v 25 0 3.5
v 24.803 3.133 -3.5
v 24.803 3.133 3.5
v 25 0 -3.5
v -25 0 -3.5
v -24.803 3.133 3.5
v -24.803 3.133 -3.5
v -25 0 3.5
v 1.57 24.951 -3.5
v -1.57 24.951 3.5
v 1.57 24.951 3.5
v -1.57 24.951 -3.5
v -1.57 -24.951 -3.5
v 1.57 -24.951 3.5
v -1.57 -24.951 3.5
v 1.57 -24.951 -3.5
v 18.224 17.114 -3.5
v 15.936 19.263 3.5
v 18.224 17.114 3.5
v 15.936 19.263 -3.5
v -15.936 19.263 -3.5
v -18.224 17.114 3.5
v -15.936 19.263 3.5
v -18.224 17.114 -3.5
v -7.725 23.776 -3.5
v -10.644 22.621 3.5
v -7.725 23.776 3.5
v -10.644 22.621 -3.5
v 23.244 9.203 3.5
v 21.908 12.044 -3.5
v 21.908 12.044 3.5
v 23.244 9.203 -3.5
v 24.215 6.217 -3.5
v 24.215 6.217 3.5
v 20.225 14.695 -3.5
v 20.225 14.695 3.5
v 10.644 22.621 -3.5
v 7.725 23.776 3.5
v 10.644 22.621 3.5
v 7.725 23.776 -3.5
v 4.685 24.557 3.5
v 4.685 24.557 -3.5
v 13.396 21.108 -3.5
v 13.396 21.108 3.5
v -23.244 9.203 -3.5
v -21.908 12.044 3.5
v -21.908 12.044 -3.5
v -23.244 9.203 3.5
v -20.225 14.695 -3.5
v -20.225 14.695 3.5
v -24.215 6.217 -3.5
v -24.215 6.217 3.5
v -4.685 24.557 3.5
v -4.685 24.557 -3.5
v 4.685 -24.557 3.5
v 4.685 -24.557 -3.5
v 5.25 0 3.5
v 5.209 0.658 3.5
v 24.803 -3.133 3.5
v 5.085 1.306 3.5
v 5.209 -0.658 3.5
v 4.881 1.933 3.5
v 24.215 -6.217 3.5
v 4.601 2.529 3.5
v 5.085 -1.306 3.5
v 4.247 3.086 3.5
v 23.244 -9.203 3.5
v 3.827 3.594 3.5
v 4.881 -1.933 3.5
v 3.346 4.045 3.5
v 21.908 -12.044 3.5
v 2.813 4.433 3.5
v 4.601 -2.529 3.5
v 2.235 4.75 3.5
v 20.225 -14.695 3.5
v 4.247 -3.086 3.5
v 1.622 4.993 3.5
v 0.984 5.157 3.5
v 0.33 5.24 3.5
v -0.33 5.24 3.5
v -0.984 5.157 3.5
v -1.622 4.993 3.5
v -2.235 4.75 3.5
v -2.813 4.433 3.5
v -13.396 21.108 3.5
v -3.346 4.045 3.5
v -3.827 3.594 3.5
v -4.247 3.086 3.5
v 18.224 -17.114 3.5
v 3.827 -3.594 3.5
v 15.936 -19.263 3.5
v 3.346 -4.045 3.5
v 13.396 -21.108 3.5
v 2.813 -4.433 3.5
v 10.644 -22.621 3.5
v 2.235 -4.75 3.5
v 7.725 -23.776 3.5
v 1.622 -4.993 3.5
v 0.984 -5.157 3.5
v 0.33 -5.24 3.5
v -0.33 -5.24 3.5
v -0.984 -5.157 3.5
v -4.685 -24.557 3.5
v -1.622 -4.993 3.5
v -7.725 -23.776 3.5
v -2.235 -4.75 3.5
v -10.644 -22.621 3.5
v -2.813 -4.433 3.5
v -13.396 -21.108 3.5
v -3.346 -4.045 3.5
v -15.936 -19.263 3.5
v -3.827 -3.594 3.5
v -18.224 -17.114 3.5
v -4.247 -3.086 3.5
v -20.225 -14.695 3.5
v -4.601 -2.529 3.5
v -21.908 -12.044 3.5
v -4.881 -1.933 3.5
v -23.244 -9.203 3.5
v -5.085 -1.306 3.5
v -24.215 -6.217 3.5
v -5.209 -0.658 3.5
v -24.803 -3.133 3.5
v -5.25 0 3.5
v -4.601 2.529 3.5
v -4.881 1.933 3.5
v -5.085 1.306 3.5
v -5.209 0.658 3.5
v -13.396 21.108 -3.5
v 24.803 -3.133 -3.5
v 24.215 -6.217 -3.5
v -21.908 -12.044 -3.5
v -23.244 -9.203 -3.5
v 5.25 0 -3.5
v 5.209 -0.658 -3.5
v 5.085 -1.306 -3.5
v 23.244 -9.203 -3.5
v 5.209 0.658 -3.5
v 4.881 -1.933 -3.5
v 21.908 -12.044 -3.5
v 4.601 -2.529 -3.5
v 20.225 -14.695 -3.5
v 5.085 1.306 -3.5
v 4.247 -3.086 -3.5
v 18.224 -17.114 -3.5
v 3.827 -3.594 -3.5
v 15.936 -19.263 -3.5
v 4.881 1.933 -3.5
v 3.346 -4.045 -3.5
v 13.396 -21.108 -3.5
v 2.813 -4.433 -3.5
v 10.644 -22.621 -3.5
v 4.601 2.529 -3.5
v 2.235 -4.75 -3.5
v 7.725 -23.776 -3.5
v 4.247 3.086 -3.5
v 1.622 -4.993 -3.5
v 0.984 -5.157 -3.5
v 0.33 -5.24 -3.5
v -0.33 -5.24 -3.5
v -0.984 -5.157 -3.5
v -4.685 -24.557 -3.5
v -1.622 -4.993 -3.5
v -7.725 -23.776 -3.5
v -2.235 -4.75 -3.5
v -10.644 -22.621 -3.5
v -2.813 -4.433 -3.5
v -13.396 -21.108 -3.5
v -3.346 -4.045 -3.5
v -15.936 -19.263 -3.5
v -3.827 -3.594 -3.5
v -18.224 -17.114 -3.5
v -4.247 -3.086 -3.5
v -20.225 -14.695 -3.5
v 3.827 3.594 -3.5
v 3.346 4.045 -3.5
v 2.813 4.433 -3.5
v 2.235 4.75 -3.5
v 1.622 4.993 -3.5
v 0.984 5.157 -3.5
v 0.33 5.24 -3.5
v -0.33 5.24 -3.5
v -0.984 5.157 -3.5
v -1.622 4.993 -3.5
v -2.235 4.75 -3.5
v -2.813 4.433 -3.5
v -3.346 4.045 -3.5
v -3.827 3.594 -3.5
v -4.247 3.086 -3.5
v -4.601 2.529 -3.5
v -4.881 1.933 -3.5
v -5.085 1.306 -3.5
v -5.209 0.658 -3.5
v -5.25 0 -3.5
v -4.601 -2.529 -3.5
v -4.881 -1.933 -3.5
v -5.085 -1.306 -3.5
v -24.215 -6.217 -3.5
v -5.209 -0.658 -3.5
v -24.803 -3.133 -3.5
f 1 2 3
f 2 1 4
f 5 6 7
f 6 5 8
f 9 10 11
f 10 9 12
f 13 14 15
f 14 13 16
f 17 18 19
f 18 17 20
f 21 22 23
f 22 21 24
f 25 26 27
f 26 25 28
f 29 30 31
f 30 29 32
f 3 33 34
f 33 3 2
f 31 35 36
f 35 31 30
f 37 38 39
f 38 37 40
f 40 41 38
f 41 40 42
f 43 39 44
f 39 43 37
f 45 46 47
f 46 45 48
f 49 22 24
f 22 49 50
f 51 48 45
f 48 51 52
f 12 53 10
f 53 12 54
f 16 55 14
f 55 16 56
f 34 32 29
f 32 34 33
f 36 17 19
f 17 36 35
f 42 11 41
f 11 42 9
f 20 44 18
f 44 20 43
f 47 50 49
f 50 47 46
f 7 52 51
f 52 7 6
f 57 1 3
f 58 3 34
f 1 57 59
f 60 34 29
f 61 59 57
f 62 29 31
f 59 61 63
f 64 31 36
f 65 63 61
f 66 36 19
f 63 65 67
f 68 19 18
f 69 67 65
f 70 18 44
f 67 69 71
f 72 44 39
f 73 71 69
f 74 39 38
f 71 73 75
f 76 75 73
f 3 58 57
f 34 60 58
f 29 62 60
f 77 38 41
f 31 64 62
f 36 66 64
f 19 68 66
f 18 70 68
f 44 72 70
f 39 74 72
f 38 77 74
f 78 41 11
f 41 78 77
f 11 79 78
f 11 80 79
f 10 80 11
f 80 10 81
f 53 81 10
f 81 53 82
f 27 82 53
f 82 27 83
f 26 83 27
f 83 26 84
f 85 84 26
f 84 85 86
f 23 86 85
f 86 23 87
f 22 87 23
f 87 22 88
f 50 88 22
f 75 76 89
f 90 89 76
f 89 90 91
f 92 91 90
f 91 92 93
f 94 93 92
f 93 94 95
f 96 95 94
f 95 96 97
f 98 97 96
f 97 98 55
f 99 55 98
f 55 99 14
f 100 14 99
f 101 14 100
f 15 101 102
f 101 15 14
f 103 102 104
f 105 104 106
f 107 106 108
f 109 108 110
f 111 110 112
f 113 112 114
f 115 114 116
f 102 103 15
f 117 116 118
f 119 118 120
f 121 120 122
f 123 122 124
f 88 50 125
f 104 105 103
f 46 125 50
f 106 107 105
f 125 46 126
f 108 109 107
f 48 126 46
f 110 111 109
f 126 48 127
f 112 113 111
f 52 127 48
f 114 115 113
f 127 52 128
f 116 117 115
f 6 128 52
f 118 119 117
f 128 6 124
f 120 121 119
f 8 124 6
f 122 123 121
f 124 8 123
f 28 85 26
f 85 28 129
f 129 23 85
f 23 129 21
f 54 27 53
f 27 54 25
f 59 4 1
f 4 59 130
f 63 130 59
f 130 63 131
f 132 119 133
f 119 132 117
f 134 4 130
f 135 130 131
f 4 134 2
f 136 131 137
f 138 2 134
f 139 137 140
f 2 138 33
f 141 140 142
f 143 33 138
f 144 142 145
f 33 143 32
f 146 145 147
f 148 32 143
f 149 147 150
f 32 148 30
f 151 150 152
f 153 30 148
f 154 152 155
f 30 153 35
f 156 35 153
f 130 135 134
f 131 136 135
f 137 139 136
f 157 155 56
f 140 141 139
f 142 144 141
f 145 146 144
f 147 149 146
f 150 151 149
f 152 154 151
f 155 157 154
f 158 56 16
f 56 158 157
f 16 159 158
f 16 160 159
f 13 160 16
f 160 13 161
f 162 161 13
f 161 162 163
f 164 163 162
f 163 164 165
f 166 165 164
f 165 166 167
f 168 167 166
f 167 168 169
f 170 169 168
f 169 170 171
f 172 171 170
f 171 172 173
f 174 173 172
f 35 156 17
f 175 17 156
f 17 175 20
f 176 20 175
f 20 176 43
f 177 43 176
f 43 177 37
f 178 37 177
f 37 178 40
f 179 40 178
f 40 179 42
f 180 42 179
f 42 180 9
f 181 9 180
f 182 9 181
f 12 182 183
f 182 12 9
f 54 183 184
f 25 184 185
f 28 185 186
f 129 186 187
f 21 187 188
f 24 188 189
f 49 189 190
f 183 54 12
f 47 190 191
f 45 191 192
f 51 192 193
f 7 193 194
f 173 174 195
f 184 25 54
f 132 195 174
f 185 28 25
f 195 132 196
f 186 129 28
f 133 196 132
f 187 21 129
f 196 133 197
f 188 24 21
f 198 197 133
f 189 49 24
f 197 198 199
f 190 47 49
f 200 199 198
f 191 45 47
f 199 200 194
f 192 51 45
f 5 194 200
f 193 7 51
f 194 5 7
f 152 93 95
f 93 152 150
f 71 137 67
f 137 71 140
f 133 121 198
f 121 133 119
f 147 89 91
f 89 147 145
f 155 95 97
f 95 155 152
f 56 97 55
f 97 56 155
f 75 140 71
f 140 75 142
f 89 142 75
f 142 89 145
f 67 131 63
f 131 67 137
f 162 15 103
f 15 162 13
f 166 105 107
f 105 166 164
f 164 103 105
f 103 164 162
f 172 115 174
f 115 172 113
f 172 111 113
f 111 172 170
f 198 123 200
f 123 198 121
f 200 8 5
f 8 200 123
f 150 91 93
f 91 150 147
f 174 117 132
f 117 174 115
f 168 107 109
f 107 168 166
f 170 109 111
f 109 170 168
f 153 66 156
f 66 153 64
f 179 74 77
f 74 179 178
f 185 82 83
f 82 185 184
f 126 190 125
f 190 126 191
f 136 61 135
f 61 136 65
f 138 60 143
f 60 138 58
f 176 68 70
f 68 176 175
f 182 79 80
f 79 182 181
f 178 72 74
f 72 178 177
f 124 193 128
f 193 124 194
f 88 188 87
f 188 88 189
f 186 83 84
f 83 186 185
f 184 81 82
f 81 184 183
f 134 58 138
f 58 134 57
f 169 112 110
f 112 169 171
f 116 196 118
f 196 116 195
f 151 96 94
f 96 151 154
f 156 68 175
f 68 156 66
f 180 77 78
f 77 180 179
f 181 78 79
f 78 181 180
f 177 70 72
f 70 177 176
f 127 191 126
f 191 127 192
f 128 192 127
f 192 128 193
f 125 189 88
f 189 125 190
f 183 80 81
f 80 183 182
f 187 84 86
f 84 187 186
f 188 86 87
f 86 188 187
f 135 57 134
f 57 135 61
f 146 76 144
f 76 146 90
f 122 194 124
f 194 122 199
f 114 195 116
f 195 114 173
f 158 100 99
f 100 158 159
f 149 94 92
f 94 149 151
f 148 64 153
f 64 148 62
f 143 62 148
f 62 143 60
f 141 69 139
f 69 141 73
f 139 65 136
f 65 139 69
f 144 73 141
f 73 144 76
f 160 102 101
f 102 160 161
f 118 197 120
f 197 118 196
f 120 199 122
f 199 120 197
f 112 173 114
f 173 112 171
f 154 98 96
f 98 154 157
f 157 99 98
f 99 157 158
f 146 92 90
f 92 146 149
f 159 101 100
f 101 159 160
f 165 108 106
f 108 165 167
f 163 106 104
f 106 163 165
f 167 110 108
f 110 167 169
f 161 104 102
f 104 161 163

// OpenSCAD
$fn = 50;


difference() {
	union() {
		translate(v = [0, 0, -3.5000000000]) {
			cylinder(h = 7, r = 25.0000000000);
		}
	}
	union() {
		translate(v = [0, 0, -100.0000000000]) {
			cylinder(h = 200, r = 5.2500000000);
		}
	}
}
